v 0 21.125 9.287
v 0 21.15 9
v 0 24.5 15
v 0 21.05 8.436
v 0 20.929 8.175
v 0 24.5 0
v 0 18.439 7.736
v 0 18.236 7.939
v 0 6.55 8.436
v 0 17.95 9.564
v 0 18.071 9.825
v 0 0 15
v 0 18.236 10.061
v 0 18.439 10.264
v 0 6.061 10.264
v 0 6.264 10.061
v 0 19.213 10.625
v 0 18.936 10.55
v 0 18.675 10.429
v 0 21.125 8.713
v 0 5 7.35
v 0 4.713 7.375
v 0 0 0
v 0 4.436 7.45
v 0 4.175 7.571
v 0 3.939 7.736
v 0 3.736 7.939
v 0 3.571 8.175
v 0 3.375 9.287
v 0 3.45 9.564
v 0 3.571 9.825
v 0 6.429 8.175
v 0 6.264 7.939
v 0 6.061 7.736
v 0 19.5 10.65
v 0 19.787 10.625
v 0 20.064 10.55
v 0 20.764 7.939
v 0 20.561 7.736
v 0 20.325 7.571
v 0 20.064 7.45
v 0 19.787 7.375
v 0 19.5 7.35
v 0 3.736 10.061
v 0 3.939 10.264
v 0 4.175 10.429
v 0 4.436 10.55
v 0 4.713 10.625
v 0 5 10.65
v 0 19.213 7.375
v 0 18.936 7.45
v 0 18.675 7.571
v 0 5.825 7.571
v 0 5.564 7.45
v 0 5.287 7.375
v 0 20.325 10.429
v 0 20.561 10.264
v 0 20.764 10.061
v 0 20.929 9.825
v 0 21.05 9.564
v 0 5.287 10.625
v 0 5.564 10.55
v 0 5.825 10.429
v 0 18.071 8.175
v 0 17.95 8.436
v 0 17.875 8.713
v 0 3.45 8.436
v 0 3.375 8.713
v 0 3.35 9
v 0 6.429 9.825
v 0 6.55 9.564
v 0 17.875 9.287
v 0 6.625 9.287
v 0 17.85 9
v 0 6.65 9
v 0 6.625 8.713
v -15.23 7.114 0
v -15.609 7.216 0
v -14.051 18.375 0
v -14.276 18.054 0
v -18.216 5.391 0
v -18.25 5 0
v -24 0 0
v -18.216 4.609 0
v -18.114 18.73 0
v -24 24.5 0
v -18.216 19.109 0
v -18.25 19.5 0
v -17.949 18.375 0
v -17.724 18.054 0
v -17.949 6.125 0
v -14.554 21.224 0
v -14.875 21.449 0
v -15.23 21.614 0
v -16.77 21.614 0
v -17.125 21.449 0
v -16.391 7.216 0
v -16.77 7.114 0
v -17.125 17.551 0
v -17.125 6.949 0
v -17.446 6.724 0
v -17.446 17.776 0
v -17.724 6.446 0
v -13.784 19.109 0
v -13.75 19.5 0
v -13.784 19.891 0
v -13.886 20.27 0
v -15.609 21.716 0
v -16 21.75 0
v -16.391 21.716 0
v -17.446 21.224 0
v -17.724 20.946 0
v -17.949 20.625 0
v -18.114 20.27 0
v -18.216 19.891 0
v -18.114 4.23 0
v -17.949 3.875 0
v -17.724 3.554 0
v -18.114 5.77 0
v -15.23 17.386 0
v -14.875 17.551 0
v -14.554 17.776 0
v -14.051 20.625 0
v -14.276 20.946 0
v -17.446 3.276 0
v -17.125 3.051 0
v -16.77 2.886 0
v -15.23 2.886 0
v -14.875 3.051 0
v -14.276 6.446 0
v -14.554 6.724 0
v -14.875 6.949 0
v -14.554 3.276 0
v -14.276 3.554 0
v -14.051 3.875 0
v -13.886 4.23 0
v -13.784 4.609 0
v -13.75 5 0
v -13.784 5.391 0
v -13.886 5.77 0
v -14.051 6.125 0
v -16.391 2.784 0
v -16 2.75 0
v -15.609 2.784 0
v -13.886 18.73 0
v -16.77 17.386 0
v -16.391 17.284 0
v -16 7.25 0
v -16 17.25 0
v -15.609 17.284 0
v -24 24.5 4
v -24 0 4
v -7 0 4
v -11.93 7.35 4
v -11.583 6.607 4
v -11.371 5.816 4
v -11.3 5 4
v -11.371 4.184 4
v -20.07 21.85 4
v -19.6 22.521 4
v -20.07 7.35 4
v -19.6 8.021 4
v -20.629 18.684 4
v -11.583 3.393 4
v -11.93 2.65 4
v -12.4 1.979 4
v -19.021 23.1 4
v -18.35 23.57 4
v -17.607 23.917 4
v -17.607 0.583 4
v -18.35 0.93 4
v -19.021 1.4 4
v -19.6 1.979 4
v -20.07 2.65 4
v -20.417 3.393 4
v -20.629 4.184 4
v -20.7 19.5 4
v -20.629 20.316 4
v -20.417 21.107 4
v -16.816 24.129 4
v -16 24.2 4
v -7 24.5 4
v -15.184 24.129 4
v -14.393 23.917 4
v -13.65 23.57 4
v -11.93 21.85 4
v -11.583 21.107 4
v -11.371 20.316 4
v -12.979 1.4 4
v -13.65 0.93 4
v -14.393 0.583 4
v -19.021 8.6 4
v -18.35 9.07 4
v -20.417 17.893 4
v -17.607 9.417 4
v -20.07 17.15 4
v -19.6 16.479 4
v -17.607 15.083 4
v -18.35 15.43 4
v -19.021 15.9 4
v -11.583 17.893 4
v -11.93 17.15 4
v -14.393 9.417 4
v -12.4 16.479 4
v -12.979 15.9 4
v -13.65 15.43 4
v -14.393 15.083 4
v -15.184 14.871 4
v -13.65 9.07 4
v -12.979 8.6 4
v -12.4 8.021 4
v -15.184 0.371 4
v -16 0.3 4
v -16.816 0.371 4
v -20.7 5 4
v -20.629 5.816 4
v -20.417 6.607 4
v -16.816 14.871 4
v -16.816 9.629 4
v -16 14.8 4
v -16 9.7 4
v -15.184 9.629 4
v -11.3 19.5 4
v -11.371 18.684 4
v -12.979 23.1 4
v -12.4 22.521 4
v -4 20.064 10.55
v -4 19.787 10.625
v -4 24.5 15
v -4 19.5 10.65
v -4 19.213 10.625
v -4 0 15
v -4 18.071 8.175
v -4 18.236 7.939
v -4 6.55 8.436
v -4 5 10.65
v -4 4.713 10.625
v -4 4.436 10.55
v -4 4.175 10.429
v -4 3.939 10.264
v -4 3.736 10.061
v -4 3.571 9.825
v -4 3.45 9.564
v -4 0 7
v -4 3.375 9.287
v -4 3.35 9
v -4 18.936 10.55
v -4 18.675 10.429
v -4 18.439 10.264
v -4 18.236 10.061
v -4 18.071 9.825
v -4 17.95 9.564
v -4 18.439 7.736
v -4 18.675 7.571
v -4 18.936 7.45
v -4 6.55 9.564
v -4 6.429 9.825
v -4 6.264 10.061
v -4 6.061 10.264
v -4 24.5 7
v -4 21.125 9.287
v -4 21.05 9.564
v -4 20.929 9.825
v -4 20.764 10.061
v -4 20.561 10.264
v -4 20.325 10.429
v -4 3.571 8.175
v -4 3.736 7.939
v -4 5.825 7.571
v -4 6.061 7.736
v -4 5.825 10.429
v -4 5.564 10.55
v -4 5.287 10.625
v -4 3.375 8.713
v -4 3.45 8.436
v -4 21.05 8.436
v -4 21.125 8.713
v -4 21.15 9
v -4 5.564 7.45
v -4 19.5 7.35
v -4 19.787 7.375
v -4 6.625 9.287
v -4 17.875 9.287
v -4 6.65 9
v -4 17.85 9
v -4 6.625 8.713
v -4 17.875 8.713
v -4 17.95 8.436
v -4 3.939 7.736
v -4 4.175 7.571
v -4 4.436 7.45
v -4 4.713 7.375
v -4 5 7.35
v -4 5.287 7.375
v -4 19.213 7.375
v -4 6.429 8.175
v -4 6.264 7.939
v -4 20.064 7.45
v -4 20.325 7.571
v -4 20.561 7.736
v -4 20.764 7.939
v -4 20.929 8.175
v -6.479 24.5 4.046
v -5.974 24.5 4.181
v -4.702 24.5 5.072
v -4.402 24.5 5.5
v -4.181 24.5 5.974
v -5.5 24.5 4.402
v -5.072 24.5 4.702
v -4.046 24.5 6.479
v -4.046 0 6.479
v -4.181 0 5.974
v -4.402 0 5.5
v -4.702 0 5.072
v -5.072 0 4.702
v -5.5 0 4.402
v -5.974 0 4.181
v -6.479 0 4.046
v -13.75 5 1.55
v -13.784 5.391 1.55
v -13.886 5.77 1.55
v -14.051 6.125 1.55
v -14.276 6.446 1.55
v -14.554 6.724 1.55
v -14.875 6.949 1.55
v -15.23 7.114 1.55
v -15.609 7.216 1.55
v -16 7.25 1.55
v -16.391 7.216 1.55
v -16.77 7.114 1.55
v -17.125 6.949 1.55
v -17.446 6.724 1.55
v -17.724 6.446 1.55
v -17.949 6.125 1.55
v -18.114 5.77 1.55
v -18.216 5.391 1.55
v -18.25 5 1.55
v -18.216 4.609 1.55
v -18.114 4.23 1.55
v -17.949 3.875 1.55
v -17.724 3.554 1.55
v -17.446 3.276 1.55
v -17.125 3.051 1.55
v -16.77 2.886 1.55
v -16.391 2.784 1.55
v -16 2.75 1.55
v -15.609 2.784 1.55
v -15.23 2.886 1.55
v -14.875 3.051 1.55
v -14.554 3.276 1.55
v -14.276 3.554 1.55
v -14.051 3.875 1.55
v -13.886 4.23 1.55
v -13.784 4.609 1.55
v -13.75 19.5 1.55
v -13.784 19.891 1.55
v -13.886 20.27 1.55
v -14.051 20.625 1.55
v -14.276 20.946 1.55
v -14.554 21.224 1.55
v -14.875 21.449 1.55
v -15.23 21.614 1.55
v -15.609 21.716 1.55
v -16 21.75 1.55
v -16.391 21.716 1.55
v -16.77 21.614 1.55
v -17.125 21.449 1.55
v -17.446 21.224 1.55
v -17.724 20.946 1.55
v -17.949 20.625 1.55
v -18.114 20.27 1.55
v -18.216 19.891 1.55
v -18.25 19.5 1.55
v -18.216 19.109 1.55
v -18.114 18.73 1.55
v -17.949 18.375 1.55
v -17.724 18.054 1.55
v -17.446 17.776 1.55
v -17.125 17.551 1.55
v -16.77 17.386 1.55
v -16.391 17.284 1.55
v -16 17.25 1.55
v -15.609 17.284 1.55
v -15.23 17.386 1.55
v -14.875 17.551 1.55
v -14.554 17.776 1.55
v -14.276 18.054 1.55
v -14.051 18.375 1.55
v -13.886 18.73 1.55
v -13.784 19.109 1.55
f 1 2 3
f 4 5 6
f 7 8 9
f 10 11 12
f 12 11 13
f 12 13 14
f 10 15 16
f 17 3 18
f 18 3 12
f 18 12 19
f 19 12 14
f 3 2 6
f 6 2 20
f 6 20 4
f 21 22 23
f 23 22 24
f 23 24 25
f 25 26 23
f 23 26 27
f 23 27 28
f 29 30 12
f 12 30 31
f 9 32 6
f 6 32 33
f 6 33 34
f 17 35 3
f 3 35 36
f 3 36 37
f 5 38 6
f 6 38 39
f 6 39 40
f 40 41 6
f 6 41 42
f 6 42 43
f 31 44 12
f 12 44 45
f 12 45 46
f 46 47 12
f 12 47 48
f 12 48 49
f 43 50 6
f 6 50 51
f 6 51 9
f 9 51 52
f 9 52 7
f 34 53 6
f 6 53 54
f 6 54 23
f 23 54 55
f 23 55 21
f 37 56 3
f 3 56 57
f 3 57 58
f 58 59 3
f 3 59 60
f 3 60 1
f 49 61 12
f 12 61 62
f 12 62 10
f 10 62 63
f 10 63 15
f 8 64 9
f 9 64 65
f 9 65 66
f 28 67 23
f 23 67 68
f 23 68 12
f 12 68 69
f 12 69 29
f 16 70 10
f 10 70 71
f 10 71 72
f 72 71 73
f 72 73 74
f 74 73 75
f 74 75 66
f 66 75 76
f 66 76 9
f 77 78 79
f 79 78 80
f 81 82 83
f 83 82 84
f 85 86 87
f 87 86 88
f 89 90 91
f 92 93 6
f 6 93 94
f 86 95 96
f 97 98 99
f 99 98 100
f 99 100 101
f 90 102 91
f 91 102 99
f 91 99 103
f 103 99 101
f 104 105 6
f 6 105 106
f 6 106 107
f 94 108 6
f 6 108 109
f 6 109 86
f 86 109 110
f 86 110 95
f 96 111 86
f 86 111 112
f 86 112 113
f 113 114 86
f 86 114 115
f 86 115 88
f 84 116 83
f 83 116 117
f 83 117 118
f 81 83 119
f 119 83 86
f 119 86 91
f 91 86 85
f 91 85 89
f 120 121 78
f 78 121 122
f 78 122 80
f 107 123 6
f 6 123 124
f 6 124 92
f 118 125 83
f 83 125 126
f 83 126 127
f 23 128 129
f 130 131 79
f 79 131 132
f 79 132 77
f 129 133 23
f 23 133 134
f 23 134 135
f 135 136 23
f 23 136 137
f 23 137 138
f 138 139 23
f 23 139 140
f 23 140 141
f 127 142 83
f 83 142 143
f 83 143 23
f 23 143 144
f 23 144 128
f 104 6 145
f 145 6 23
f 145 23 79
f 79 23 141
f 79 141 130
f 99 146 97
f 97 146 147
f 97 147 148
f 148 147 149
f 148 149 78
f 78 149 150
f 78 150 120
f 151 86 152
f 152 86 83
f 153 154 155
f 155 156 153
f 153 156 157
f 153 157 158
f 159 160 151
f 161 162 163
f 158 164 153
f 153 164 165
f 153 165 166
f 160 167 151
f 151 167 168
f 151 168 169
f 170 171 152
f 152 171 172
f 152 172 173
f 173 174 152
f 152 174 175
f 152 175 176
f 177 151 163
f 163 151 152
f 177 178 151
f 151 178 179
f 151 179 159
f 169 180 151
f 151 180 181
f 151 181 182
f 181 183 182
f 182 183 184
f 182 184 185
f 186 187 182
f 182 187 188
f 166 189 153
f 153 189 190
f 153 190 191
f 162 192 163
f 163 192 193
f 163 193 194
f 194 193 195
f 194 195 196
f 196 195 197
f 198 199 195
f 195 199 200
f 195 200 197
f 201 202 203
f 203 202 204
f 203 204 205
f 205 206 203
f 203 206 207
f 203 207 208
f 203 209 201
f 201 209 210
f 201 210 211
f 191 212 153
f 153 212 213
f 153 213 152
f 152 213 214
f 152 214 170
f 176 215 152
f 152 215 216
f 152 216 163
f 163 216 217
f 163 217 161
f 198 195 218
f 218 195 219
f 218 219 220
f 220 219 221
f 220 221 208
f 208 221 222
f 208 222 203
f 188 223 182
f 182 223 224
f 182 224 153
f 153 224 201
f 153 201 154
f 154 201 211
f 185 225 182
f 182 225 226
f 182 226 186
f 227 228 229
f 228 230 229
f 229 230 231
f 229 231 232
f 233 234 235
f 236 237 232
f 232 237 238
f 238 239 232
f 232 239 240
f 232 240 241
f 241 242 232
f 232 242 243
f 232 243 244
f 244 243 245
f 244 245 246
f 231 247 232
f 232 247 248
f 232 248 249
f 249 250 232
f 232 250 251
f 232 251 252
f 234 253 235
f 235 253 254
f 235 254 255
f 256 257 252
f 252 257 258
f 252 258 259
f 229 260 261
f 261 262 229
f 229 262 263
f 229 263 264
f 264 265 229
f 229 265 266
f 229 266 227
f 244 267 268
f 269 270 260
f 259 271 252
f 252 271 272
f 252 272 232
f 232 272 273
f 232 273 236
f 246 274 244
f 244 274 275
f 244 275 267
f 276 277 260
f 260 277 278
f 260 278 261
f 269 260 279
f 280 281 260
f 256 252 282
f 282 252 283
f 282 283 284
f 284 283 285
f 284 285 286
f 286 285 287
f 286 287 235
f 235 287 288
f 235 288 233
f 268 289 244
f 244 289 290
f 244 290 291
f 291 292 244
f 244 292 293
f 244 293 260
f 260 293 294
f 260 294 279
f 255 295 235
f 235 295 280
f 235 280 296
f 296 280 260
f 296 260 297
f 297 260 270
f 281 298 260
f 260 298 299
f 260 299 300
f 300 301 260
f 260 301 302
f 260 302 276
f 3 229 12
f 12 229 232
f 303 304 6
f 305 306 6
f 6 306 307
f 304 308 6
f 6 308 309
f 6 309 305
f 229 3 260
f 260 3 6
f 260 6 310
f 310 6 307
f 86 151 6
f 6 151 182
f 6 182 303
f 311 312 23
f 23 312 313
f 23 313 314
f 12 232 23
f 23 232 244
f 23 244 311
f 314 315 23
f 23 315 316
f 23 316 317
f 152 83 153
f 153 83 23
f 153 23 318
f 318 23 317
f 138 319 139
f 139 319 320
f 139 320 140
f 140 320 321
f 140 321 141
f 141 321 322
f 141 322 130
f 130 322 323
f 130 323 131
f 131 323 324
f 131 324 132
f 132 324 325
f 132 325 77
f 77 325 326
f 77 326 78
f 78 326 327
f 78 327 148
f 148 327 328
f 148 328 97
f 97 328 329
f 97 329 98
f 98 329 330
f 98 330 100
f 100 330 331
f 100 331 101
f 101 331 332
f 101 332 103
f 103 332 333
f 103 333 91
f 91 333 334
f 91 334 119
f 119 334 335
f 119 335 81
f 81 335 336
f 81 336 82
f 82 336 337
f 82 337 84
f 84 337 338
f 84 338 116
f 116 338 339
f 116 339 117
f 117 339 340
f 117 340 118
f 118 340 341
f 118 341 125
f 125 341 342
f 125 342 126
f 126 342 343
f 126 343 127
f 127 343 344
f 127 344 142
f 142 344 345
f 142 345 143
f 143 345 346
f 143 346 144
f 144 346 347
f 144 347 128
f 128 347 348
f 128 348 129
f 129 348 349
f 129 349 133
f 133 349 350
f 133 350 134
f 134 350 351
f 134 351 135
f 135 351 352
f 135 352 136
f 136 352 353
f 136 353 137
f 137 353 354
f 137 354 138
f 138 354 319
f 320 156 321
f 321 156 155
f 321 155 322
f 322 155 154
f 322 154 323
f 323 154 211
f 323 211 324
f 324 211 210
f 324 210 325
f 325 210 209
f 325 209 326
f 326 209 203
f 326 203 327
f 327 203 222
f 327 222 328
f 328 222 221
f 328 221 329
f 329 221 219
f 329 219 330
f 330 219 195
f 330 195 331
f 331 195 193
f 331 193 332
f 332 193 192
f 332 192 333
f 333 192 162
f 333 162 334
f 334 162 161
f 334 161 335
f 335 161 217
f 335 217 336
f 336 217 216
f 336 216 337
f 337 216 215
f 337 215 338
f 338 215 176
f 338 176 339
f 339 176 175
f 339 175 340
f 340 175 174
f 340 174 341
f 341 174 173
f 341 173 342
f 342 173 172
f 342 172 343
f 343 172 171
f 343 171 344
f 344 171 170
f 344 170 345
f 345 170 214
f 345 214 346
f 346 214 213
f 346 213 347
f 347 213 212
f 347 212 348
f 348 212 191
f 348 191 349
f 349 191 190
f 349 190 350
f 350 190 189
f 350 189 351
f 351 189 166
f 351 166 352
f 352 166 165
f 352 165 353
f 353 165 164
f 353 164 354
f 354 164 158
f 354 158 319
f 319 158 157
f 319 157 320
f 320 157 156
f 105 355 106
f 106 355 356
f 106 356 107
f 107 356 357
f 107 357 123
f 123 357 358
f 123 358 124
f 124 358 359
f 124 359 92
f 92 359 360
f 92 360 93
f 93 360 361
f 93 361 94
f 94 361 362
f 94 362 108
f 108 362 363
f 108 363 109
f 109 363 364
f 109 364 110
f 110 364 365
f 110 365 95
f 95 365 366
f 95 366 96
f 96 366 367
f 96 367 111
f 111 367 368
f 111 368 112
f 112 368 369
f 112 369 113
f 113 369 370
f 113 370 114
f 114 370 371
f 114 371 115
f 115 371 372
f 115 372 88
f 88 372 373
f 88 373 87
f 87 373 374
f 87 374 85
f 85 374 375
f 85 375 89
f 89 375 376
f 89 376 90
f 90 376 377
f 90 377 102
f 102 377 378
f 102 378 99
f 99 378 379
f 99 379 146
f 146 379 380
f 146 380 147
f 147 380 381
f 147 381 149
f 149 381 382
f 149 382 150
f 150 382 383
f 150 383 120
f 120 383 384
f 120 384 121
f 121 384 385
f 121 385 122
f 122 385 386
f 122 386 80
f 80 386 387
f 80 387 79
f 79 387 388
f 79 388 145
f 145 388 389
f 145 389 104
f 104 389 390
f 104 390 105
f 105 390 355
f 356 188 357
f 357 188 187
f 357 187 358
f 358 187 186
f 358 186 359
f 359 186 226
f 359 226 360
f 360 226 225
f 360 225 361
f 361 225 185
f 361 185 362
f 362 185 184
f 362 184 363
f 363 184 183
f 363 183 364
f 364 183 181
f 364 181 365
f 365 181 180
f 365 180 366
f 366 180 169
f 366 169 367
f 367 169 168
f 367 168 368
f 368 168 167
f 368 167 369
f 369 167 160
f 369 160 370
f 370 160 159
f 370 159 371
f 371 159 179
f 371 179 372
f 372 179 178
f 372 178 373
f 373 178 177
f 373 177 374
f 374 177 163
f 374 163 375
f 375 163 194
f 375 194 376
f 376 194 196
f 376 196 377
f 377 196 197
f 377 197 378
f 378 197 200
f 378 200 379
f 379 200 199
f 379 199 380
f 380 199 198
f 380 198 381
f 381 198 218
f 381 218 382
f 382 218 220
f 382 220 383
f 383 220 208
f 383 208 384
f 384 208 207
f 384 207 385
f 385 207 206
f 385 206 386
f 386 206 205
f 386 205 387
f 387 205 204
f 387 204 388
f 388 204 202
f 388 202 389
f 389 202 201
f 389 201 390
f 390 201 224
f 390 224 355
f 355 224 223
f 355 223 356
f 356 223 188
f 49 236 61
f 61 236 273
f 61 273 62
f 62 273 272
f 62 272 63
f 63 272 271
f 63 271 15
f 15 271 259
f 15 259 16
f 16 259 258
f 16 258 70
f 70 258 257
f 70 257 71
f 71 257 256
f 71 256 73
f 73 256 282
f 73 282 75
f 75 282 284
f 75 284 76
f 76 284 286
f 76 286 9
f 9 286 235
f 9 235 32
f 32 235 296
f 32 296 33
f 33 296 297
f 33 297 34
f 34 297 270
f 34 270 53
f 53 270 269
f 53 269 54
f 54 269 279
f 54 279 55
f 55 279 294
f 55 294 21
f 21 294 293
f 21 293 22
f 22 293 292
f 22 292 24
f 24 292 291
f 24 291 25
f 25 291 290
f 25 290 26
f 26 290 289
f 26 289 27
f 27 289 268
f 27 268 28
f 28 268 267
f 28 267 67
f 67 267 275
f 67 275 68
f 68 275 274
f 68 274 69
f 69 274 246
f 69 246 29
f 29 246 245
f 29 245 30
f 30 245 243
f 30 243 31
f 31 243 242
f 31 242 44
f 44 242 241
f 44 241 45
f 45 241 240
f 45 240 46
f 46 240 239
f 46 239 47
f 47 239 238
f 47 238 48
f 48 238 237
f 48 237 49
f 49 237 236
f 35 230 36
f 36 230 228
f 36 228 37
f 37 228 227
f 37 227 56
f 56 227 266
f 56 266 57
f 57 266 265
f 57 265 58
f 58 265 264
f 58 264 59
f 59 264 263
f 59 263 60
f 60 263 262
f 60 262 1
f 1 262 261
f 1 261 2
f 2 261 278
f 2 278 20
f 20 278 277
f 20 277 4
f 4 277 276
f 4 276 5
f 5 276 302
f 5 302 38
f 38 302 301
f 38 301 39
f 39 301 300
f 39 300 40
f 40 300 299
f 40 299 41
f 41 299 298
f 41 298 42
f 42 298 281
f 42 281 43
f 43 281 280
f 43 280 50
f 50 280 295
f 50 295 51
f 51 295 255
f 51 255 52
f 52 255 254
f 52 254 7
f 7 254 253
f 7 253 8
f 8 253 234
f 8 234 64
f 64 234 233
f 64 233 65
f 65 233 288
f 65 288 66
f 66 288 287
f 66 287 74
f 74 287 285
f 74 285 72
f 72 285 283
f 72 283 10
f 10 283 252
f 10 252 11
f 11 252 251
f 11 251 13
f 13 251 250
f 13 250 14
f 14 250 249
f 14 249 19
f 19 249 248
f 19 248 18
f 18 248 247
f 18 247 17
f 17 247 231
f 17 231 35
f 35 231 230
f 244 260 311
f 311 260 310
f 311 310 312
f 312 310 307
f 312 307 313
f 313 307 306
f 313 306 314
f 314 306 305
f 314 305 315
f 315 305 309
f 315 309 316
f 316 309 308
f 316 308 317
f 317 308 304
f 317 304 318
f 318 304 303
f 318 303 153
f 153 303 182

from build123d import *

# Parameters (mm, degrees)
BOSS_EXTRUDE1_DEPTH                            = 24.5
CSK_FOR_M4_FLAT_HEAD_MACHINE_SCREW1_AT_2_COUNT = 2
CSK_FOR_M4_FLAT_HEAD_MACHINE_SCREW1_AT_2_PITCH = 14.5
TAP_DRILL_FOR_M4X0_7_TAP1_D                    = 3.3
FILLET1_R                                      = 3


with BuildPart() as part:
    # Sketch2 → Boss-Extrude1 (new body)
    with BuildSketch(Plane(origin=(0, 0, 0), x_dir=(1, 0, 0), z_dir=(0, 1, 0))):
        Polygon((0, 0), (-24, 0), (-24, -4), (-4, -4), (-4, -15), (0, -15), align=None)
    extrude(amount=BOSS_EXTRUDE1_DEPTH)

    # Sketch5 → CSK for M4 Flat Head Machine Screw1 (revolve, cut)
    with BuildSketch(Plane(origin=(-16, 5, 4), x_dir=(0, -1, 0), z_dir=(1, 0, 0))):
        Polygon((0, 0), (0, 4), (2.25, 4), (2.25, 2.45), (4.7, 0), align=None)
    csk_for_m4_flat_head_machine_screw1 = revolve(axis=Axis((-16, 5, 10.35), (0, 0, -1)), mode=Mode.SUBTRACT)

    # CSK for M4 Flat Head Machine Screw1 at 2: CSK for M4 Flat Head Machine Screw1 ×2
    with Locations(*[(0, i * CSK_FOR_M4_FLAT_HEAD_MACHINE_SCREW1_AT_2_PITCH, 0) for i in range(1, CSK_FOR_M4_FLAT_HEAD_MACHINE_SCREW1_AT_2_COUNT)]):
        add(csk_for_m4_flat_head_machine_screw1, mode=Mode.SUBTRACT)

    # Tap Drill for M4x0.7 Tap1 (through all)
    with Locations(Plane.ZY.offset(4)):
        with Locations((9, 5), (9, 19.5)):
            Hole(TAP_DRILL_FOR_M4X0_7_TAP1_D / 2)

    # Fillet1
    fillet1_edges = [part.edges().sort_by_distance(p)[0] for p in [
        (-4, 12.25, 4),
    ]]
    fillet(fillet1_edges, radius=FILLET1_R)


solid = part.part
